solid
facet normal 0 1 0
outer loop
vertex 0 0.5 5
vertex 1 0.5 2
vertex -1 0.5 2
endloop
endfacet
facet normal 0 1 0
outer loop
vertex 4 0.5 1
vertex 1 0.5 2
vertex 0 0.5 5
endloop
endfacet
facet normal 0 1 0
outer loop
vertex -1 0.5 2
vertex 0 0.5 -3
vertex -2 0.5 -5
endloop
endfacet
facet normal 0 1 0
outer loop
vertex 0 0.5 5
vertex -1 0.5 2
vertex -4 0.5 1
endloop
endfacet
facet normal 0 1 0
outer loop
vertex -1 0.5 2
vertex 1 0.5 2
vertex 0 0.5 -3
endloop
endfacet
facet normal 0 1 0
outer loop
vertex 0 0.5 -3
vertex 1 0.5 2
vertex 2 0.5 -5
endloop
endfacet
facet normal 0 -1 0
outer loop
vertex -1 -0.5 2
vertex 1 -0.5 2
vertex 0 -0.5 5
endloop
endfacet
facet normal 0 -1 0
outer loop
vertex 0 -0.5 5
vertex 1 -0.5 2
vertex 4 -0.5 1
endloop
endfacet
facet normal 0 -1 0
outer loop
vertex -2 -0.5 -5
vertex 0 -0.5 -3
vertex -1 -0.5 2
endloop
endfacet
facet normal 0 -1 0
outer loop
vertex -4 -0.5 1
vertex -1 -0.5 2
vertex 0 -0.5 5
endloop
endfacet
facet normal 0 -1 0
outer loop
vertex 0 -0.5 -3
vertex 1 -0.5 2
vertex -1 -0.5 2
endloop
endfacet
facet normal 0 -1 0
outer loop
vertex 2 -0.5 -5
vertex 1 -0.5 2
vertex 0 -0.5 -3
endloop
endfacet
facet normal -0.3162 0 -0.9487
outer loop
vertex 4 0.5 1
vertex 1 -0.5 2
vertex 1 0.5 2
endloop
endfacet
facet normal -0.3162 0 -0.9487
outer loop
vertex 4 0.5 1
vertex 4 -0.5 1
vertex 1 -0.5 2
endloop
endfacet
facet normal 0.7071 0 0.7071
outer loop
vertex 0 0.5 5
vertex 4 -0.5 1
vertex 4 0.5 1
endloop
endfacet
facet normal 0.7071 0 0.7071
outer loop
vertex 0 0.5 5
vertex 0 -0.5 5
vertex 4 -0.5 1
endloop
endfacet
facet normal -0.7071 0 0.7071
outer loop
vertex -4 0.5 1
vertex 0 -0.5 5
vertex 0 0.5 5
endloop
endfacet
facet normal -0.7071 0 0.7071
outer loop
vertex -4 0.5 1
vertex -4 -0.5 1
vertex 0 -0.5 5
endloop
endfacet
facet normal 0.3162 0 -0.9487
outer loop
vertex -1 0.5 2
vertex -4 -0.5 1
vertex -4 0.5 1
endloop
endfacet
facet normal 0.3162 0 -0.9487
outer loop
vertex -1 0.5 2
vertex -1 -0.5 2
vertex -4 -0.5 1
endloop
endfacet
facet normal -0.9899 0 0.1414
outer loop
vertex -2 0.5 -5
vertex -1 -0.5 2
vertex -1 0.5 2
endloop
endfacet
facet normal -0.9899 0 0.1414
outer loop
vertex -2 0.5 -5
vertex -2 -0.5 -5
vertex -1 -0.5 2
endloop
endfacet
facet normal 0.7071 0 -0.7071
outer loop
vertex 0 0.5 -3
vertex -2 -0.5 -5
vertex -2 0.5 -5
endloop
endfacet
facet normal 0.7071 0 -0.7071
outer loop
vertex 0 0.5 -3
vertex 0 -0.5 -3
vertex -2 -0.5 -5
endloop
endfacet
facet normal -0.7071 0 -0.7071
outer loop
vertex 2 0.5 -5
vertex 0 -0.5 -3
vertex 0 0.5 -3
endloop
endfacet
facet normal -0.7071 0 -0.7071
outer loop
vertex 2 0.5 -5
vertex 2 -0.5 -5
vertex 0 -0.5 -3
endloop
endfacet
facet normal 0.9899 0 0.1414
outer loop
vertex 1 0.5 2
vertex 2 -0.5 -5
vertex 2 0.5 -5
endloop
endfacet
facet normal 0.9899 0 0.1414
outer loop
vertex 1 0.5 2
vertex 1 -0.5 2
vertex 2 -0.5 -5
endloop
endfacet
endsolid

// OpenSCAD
translate([-5, .5, -5]) rotate([90, 0, 0]) linear_extrude(1) polygon([[3, 0], [5, 2], [7, 0], [6, 7], [9, 6], [5, 10], [1, 6], [4, 7]]);
